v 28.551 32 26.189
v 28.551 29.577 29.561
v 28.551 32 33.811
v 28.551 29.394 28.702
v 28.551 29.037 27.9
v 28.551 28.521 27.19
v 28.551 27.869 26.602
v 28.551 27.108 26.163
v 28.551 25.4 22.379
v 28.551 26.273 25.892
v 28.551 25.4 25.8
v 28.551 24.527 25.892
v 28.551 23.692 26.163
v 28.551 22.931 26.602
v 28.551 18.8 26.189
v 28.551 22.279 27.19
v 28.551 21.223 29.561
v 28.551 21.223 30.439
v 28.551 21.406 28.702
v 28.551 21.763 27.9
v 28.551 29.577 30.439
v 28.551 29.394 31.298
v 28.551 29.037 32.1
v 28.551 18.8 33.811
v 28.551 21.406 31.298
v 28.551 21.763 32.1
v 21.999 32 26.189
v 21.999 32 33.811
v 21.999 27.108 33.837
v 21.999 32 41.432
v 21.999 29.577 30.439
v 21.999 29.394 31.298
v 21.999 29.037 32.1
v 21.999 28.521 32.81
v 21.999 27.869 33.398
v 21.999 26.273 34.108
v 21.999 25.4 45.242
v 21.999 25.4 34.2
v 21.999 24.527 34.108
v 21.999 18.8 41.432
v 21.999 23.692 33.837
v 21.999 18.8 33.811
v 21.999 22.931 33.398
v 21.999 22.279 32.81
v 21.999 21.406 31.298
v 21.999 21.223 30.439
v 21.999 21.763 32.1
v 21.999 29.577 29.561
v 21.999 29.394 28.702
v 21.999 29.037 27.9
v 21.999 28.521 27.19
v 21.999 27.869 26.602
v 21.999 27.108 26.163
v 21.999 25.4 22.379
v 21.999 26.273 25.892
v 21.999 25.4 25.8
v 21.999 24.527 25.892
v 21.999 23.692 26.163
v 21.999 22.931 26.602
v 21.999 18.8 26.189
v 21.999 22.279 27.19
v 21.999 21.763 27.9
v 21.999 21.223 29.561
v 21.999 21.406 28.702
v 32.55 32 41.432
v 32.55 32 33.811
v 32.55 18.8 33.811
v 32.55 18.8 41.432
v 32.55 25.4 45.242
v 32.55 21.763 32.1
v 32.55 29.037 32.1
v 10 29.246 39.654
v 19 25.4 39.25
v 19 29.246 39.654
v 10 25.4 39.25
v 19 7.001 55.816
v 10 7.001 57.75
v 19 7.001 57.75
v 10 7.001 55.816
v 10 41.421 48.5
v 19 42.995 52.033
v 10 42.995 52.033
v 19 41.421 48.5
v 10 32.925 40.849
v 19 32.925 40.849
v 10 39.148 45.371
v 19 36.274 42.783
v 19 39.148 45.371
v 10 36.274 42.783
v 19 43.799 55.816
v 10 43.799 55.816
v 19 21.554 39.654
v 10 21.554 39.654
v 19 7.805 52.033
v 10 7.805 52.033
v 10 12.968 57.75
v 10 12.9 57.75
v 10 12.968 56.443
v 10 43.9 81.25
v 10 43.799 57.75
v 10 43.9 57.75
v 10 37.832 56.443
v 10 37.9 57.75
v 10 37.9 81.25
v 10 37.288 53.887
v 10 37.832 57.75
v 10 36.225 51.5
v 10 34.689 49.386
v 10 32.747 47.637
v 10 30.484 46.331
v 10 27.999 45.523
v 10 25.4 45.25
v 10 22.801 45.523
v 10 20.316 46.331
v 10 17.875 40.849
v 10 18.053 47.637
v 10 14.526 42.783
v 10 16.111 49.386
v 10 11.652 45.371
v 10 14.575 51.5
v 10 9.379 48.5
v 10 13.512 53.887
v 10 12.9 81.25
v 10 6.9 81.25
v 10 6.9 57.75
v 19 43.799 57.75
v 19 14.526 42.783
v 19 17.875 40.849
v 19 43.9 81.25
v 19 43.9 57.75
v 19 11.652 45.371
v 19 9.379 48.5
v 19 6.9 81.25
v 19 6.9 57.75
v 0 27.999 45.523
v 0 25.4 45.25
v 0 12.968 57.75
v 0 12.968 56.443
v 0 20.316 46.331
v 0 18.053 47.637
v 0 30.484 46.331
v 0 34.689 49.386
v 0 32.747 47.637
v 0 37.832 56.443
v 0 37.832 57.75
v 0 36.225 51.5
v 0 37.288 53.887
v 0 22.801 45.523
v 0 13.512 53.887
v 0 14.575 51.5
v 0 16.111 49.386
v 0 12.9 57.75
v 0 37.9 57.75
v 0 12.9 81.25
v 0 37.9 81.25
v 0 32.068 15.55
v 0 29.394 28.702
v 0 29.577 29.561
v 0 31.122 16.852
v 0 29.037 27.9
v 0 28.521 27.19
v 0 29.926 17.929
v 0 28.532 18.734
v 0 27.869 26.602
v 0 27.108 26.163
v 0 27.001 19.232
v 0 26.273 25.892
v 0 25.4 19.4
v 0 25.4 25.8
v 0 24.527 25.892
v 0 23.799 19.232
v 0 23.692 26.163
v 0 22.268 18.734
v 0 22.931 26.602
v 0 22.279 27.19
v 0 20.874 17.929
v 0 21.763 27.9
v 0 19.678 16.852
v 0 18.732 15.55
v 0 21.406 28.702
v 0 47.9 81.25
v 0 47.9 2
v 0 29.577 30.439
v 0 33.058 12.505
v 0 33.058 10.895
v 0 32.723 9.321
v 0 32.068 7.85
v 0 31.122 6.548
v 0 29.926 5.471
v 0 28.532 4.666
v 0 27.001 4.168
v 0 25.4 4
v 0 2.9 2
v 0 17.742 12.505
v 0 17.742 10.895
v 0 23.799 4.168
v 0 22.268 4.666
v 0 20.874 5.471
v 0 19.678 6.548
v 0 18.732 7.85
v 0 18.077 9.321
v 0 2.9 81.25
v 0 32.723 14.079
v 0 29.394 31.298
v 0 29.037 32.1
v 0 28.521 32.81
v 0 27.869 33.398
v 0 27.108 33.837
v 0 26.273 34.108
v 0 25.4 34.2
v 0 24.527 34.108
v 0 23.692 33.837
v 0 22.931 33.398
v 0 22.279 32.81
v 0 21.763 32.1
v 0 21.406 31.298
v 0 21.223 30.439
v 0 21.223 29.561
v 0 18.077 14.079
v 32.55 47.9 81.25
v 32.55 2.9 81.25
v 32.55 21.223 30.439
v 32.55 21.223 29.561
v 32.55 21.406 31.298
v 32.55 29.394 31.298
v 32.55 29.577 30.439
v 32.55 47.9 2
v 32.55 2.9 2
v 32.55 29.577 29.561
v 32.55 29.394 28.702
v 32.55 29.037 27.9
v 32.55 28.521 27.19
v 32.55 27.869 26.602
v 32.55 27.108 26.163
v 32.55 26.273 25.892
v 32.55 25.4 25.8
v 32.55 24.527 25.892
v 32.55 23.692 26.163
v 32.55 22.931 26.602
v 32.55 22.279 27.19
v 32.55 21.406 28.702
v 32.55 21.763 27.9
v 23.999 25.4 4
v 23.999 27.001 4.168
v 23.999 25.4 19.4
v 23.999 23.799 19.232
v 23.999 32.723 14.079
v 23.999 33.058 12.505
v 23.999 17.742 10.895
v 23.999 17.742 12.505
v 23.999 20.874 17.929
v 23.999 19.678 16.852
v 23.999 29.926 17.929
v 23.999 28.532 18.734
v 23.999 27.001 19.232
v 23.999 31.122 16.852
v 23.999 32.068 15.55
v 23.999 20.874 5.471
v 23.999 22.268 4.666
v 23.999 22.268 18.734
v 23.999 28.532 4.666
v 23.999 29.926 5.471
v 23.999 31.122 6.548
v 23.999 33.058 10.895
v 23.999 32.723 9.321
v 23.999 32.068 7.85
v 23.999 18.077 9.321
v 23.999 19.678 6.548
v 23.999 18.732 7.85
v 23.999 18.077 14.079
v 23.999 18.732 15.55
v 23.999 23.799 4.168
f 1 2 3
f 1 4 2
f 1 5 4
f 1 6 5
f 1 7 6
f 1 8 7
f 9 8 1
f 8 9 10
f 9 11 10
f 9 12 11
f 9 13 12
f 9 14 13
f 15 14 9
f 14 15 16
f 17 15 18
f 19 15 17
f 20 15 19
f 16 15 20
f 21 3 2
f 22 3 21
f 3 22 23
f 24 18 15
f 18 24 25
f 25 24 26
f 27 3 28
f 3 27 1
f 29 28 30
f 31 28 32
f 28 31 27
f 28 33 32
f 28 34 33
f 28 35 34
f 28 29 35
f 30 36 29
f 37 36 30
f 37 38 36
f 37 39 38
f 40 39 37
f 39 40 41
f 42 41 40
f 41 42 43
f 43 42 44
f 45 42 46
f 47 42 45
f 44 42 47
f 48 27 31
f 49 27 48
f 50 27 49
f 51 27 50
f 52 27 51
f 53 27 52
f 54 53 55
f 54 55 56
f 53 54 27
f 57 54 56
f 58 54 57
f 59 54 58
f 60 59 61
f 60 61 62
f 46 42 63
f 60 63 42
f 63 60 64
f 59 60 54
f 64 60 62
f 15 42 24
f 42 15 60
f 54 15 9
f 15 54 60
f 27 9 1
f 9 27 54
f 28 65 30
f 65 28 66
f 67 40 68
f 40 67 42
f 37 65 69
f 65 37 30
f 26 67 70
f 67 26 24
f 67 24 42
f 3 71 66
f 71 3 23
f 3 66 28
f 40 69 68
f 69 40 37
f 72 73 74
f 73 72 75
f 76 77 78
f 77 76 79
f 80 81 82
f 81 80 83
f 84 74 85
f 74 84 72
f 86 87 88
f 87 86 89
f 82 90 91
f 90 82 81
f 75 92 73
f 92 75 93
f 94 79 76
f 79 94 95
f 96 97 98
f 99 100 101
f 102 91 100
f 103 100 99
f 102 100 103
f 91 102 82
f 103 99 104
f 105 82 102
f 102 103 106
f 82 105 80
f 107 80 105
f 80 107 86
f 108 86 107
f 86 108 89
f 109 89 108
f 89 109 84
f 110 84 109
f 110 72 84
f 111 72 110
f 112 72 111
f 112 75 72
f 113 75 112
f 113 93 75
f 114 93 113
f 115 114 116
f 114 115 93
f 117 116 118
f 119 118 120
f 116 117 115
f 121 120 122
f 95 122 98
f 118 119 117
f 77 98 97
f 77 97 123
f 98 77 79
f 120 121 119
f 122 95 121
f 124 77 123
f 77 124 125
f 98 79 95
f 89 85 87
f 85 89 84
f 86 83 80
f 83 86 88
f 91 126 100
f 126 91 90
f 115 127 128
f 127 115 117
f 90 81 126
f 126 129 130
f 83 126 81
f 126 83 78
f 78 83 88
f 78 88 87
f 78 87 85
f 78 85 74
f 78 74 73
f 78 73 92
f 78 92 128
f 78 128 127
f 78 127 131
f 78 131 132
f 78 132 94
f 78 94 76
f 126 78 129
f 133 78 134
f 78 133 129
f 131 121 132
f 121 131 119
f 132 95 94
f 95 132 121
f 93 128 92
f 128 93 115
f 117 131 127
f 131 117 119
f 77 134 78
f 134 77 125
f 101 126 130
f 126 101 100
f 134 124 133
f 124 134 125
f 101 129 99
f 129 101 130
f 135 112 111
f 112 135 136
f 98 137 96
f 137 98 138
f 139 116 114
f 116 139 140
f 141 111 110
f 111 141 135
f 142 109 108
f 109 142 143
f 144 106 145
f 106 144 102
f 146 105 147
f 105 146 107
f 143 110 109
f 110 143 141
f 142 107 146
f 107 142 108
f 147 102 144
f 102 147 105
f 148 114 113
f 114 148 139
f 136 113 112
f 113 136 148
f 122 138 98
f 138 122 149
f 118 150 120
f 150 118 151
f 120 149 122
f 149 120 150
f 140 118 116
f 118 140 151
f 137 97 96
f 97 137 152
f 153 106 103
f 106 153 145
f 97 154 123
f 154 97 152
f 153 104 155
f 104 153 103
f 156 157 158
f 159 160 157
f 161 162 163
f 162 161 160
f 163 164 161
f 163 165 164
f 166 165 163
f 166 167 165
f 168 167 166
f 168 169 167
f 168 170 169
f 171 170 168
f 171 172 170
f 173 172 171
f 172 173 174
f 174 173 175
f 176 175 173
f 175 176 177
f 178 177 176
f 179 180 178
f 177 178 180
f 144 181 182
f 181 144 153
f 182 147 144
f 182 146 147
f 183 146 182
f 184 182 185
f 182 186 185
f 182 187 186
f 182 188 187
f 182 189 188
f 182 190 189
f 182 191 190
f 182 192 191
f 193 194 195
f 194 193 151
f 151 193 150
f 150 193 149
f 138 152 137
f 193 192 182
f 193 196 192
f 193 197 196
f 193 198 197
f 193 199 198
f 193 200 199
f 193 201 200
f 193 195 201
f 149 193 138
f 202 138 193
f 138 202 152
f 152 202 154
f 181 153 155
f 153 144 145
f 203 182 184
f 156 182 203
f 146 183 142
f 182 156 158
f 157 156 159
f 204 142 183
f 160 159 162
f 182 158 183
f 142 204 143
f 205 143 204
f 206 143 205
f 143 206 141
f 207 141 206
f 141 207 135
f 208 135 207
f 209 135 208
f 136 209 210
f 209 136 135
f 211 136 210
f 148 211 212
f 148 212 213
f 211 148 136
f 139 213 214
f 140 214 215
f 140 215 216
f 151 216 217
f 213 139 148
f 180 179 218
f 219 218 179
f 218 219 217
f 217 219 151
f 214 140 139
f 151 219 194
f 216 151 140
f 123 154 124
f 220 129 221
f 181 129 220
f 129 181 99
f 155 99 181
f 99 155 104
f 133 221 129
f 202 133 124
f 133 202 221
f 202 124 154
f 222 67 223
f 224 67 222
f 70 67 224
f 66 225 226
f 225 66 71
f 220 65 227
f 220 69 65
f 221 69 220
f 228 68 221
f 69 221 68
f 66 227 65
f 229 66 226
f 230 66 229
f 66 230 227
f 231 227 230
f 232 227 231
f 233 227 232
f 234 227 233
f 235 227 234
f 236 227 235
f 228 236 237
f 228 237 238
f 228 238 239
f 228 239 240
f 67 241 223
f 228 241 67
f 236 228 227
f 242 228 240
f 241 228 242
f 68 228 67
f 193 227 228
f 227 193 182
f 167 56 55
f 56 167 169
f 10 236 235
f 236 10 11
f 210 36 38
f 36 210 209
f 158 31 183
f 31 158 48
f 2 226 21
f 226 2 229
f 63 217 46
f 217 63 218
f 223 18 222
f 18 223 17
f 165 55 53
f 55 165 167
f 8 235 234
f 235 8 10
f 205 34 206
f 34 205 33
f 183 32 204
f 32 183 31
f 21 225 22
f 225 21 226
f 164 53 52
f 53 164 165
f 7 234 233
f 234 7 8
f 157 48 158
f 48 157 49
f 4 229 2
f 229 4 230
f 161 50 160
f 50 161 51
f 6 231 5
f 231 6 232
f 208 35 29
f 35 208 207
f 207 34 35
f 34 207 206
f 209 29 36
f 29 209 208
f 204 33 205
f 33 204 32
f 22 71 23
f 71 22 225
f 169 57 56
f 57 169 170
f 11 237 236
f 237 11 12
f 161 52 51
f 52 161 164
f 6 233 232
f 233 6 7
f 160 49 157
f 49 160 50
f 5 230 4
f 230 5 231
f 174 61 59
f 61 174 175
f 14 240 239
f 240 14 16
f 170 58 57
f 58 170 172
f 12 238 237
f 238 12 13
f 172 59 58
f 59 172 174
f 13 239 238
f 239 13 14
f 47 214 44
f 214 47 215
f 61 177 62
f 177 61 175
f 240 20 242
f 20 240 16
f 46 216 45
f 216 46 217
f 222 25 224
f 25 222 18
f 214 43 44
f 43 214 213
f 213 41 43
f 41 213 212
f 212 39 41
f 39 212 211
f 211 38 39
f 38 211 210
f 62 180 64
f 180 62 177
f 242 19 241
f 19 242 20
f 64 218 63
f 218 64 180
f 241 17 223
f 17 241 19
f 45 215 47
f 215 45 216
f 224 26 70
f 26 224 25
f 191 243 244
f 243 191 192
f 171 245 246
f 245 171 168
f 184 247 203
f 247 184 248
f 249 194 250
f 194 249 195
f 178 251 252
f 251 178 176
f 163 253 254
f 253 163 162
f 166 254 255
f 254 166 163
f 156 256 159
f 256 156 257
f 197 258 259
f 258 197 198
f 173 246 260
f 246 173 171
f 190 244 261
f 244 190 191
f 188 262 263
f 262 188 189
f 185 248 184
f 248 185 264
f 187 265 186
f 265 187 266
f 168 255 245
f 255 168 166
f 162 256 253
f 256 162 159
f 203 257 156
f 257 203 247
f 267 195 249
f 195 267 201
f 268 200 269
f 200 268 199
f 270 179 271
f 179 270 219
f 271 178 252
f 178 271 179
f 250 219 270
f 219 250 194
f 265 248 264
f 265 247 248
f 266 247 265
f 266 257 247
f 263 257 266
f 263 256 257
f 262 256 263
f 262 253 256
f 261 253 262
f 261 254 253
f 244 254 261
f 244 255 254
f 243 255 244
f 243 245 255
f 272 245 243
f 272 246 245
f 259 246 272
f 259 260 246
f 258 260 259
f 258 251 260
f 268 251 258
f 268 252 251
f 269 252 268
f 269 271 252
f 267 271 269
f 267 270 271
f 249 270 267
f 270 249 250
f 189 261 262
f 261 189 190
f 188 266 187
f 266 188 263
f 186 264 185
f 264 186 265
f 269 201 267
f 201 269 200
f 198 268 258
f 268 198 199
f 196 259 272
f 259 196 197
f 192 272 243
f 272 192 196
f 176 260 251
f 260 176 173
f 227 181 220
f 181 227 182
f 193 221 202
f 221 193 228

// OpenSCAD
// file: syringePumpConstants.scad
/* === Project-universal Constants === */

//Not all of these variables are used in this specific model,
//but the same variable set is used across all models in this project.

$fs = 0.1;

inch = 25.4; //for mm conversion

//width of base
baseSizeY = 2*inch;
centerY = baseSizeY / 2; //both axes go right down the middle of the base

//stepper motor
stepperZSize = 42;
stepperYSize = 42;

//608 bearing 
bearing608Height = 8.5;
bearing608Diameter = 22.5;

//height of holder for 80/20 screws
mountPlateHeight = 5;

//axis heights
threadedAxisHeight = stepperZSize/2 + mountPlateHeight + 4;
smoothAxisHeight = (threadedAxisHeight-6.6) / 2;
smoothRodRadius = 4.2;

//syringe properties
barrelDiameter = 25;

barrelSlotThickness = 3;
barrelSlotHeight = 28;

syringeCenterHeight = threadedAxisHeight + bearing608Diameter/2 + 4 + barrelDiameter/2;

//fixes render oddities
floatCorrection = 0.001; 
floatCorrection2 = 2*floatCorrection; 

//8020 mounting plate
screwPlateSize = 25;	
screwRadius = 3.5;
// main file
include <syringePumpConstants.scad>

/* === Model-specific Constants === */

//add some clearance, we don't want this against the 8020 rails
spaceAboveFloor = 2;

//plunger
plungerDiameter = 37;
plungerThickness = 9;
plungerInnerDiameter = 25;
plungerClipThickness = 10;
plungerWellDepth = plungerThickness + plungerClipThickness;

//trap nut
nutAcross = 13.2;
nutDepth = 6.5;
nutWellDepth = nutDepth + 0.05; //tight so it won't rattle
nutWallThicknessFront = plungerWellDepth+3;
nutWallThicknessBack = 4;

nutSlotSizeX = nutWallThicknessFront;
nutSlotSizeY = nutAcross;
nutSlotSizeZ = nutAcross/2;

//linear bearing 
LM8UU_dia = 15.4;
LM8UU_length = 24;

//cube containing nut, linear bearing, and plunger
mountXSize = nutWellDepth + nutWallThicknessFront + nutWallThicknessBack;
mountZSize = syringeCenterHeight + plungerDiameter/2 + 3;

/* === Model === */

//main cube, holds the two axes
difference(){
	translate([0,0,spaceAboveFloor]){
		cube(size=[mountXSize,baseSizeY,mountZSize]);
	}

	//nut
	translate([-floatCorrection+nutWallThicknessFront,centerY,threadedAxisHeight]){
		rotate(a=[0,90,0]){
			nutWell();
		}
		//nut insertion slot
		translate([0,0,nutAcross/sqrt(3)]){
			rotate(a=[0,90,0]){
				nutWell();
			}
		}
		translate([nutWellDepth,0,nutAcross/sqrt(3)]){
			rotate(a=[0,90,0]){
				nutWell();
			}
		}
	}

	
	//bore hole for threaded rod
	translate([-floatCorrection,centerY,threadedAxisHeight]){
		rotate(a=[0,90,0]){
			cylinder(h=mountXSize+floatCorrection2, r=smoothRodRadius);
		}
	}

	//hole for LM8UU
	translate([-floatCorrection,centerY,smoothAxisHeight]){
		rotate(a=[0,90,0]){
			bearingLM8UU();
		}
	}

	//U-shaped hole for syringe plunger to go in
	translate([plungerClipThickness,centerY,syringeCenterHeight]){
		rotate(a=[0,90,0]){
			cylinder(h=plungerThickness, r=plungerDiameter/2);
		}	
		translate([0,-plungerDiameter/2,0]){
			cube(size=[plungerThickness,plungerDiameter,mountZSize]);
		}
	}	
	translate([-floatCorrection,centerY,syringeCenterHeight]){
		rotate(a=[0,90,0]){
			cylinder(h=plungerClipThickness+floatCorrection2, r=plungerInnerDiameter/2);
		}	
		translate([0,-plungerInnerDiameter/2,0]){
			cube(size=[plungerClipThickness+floatCorrection2,plungerInnerDiameter,mountZSize]);
		}
	}	
	
	
	//remove excess volume from sides
	translate([-floatCorrection,centerY+plungerDiameter/2 + 4,0]){
		cube(size=[mountXSize + floatCorrection2, baseSizeY, mountZSize+spaceAboveFloor]);
	}	
	cube(size=[mountXSize + floatCorrection2, centerY-plungerDiameter/2-4, mountZSize+spaceAboveFloor]);
}




module nutWell(){
	//compose the outline of the 6-sided nut using 3 cubes. Yay geometry.
	nutEdgeLength = nutAcross / (sqrt(3));
	
	translate([-nutEdgeLength/2, -nutAcross/2, 0]){
		cube(size=[nutEdgeLength,nutAcross,nutWellDepth+floatCorrection2]);
	}

		rotate(a=[0,0,60]){
			translate([-nutEdgeLength/2, -nutAcross/2, 0]){
				cube(size=[nutEdgeLength,nutAcross,nutWellDepth+floatCorrection2]);
			}
		}
	
		rotate(a=[0,0,-60]){
			translate([-nutEdgeLength/2, -nutAcross/2, 0]){
				cube(size=[nutEdgeLength,nutAcross,nutWellDepth+floatCorrection2]);
			}
		}
}

module bearingLM8UU(){
	cylinder(h=LM8UU_length, r=LM8UU_dia/2);
}
